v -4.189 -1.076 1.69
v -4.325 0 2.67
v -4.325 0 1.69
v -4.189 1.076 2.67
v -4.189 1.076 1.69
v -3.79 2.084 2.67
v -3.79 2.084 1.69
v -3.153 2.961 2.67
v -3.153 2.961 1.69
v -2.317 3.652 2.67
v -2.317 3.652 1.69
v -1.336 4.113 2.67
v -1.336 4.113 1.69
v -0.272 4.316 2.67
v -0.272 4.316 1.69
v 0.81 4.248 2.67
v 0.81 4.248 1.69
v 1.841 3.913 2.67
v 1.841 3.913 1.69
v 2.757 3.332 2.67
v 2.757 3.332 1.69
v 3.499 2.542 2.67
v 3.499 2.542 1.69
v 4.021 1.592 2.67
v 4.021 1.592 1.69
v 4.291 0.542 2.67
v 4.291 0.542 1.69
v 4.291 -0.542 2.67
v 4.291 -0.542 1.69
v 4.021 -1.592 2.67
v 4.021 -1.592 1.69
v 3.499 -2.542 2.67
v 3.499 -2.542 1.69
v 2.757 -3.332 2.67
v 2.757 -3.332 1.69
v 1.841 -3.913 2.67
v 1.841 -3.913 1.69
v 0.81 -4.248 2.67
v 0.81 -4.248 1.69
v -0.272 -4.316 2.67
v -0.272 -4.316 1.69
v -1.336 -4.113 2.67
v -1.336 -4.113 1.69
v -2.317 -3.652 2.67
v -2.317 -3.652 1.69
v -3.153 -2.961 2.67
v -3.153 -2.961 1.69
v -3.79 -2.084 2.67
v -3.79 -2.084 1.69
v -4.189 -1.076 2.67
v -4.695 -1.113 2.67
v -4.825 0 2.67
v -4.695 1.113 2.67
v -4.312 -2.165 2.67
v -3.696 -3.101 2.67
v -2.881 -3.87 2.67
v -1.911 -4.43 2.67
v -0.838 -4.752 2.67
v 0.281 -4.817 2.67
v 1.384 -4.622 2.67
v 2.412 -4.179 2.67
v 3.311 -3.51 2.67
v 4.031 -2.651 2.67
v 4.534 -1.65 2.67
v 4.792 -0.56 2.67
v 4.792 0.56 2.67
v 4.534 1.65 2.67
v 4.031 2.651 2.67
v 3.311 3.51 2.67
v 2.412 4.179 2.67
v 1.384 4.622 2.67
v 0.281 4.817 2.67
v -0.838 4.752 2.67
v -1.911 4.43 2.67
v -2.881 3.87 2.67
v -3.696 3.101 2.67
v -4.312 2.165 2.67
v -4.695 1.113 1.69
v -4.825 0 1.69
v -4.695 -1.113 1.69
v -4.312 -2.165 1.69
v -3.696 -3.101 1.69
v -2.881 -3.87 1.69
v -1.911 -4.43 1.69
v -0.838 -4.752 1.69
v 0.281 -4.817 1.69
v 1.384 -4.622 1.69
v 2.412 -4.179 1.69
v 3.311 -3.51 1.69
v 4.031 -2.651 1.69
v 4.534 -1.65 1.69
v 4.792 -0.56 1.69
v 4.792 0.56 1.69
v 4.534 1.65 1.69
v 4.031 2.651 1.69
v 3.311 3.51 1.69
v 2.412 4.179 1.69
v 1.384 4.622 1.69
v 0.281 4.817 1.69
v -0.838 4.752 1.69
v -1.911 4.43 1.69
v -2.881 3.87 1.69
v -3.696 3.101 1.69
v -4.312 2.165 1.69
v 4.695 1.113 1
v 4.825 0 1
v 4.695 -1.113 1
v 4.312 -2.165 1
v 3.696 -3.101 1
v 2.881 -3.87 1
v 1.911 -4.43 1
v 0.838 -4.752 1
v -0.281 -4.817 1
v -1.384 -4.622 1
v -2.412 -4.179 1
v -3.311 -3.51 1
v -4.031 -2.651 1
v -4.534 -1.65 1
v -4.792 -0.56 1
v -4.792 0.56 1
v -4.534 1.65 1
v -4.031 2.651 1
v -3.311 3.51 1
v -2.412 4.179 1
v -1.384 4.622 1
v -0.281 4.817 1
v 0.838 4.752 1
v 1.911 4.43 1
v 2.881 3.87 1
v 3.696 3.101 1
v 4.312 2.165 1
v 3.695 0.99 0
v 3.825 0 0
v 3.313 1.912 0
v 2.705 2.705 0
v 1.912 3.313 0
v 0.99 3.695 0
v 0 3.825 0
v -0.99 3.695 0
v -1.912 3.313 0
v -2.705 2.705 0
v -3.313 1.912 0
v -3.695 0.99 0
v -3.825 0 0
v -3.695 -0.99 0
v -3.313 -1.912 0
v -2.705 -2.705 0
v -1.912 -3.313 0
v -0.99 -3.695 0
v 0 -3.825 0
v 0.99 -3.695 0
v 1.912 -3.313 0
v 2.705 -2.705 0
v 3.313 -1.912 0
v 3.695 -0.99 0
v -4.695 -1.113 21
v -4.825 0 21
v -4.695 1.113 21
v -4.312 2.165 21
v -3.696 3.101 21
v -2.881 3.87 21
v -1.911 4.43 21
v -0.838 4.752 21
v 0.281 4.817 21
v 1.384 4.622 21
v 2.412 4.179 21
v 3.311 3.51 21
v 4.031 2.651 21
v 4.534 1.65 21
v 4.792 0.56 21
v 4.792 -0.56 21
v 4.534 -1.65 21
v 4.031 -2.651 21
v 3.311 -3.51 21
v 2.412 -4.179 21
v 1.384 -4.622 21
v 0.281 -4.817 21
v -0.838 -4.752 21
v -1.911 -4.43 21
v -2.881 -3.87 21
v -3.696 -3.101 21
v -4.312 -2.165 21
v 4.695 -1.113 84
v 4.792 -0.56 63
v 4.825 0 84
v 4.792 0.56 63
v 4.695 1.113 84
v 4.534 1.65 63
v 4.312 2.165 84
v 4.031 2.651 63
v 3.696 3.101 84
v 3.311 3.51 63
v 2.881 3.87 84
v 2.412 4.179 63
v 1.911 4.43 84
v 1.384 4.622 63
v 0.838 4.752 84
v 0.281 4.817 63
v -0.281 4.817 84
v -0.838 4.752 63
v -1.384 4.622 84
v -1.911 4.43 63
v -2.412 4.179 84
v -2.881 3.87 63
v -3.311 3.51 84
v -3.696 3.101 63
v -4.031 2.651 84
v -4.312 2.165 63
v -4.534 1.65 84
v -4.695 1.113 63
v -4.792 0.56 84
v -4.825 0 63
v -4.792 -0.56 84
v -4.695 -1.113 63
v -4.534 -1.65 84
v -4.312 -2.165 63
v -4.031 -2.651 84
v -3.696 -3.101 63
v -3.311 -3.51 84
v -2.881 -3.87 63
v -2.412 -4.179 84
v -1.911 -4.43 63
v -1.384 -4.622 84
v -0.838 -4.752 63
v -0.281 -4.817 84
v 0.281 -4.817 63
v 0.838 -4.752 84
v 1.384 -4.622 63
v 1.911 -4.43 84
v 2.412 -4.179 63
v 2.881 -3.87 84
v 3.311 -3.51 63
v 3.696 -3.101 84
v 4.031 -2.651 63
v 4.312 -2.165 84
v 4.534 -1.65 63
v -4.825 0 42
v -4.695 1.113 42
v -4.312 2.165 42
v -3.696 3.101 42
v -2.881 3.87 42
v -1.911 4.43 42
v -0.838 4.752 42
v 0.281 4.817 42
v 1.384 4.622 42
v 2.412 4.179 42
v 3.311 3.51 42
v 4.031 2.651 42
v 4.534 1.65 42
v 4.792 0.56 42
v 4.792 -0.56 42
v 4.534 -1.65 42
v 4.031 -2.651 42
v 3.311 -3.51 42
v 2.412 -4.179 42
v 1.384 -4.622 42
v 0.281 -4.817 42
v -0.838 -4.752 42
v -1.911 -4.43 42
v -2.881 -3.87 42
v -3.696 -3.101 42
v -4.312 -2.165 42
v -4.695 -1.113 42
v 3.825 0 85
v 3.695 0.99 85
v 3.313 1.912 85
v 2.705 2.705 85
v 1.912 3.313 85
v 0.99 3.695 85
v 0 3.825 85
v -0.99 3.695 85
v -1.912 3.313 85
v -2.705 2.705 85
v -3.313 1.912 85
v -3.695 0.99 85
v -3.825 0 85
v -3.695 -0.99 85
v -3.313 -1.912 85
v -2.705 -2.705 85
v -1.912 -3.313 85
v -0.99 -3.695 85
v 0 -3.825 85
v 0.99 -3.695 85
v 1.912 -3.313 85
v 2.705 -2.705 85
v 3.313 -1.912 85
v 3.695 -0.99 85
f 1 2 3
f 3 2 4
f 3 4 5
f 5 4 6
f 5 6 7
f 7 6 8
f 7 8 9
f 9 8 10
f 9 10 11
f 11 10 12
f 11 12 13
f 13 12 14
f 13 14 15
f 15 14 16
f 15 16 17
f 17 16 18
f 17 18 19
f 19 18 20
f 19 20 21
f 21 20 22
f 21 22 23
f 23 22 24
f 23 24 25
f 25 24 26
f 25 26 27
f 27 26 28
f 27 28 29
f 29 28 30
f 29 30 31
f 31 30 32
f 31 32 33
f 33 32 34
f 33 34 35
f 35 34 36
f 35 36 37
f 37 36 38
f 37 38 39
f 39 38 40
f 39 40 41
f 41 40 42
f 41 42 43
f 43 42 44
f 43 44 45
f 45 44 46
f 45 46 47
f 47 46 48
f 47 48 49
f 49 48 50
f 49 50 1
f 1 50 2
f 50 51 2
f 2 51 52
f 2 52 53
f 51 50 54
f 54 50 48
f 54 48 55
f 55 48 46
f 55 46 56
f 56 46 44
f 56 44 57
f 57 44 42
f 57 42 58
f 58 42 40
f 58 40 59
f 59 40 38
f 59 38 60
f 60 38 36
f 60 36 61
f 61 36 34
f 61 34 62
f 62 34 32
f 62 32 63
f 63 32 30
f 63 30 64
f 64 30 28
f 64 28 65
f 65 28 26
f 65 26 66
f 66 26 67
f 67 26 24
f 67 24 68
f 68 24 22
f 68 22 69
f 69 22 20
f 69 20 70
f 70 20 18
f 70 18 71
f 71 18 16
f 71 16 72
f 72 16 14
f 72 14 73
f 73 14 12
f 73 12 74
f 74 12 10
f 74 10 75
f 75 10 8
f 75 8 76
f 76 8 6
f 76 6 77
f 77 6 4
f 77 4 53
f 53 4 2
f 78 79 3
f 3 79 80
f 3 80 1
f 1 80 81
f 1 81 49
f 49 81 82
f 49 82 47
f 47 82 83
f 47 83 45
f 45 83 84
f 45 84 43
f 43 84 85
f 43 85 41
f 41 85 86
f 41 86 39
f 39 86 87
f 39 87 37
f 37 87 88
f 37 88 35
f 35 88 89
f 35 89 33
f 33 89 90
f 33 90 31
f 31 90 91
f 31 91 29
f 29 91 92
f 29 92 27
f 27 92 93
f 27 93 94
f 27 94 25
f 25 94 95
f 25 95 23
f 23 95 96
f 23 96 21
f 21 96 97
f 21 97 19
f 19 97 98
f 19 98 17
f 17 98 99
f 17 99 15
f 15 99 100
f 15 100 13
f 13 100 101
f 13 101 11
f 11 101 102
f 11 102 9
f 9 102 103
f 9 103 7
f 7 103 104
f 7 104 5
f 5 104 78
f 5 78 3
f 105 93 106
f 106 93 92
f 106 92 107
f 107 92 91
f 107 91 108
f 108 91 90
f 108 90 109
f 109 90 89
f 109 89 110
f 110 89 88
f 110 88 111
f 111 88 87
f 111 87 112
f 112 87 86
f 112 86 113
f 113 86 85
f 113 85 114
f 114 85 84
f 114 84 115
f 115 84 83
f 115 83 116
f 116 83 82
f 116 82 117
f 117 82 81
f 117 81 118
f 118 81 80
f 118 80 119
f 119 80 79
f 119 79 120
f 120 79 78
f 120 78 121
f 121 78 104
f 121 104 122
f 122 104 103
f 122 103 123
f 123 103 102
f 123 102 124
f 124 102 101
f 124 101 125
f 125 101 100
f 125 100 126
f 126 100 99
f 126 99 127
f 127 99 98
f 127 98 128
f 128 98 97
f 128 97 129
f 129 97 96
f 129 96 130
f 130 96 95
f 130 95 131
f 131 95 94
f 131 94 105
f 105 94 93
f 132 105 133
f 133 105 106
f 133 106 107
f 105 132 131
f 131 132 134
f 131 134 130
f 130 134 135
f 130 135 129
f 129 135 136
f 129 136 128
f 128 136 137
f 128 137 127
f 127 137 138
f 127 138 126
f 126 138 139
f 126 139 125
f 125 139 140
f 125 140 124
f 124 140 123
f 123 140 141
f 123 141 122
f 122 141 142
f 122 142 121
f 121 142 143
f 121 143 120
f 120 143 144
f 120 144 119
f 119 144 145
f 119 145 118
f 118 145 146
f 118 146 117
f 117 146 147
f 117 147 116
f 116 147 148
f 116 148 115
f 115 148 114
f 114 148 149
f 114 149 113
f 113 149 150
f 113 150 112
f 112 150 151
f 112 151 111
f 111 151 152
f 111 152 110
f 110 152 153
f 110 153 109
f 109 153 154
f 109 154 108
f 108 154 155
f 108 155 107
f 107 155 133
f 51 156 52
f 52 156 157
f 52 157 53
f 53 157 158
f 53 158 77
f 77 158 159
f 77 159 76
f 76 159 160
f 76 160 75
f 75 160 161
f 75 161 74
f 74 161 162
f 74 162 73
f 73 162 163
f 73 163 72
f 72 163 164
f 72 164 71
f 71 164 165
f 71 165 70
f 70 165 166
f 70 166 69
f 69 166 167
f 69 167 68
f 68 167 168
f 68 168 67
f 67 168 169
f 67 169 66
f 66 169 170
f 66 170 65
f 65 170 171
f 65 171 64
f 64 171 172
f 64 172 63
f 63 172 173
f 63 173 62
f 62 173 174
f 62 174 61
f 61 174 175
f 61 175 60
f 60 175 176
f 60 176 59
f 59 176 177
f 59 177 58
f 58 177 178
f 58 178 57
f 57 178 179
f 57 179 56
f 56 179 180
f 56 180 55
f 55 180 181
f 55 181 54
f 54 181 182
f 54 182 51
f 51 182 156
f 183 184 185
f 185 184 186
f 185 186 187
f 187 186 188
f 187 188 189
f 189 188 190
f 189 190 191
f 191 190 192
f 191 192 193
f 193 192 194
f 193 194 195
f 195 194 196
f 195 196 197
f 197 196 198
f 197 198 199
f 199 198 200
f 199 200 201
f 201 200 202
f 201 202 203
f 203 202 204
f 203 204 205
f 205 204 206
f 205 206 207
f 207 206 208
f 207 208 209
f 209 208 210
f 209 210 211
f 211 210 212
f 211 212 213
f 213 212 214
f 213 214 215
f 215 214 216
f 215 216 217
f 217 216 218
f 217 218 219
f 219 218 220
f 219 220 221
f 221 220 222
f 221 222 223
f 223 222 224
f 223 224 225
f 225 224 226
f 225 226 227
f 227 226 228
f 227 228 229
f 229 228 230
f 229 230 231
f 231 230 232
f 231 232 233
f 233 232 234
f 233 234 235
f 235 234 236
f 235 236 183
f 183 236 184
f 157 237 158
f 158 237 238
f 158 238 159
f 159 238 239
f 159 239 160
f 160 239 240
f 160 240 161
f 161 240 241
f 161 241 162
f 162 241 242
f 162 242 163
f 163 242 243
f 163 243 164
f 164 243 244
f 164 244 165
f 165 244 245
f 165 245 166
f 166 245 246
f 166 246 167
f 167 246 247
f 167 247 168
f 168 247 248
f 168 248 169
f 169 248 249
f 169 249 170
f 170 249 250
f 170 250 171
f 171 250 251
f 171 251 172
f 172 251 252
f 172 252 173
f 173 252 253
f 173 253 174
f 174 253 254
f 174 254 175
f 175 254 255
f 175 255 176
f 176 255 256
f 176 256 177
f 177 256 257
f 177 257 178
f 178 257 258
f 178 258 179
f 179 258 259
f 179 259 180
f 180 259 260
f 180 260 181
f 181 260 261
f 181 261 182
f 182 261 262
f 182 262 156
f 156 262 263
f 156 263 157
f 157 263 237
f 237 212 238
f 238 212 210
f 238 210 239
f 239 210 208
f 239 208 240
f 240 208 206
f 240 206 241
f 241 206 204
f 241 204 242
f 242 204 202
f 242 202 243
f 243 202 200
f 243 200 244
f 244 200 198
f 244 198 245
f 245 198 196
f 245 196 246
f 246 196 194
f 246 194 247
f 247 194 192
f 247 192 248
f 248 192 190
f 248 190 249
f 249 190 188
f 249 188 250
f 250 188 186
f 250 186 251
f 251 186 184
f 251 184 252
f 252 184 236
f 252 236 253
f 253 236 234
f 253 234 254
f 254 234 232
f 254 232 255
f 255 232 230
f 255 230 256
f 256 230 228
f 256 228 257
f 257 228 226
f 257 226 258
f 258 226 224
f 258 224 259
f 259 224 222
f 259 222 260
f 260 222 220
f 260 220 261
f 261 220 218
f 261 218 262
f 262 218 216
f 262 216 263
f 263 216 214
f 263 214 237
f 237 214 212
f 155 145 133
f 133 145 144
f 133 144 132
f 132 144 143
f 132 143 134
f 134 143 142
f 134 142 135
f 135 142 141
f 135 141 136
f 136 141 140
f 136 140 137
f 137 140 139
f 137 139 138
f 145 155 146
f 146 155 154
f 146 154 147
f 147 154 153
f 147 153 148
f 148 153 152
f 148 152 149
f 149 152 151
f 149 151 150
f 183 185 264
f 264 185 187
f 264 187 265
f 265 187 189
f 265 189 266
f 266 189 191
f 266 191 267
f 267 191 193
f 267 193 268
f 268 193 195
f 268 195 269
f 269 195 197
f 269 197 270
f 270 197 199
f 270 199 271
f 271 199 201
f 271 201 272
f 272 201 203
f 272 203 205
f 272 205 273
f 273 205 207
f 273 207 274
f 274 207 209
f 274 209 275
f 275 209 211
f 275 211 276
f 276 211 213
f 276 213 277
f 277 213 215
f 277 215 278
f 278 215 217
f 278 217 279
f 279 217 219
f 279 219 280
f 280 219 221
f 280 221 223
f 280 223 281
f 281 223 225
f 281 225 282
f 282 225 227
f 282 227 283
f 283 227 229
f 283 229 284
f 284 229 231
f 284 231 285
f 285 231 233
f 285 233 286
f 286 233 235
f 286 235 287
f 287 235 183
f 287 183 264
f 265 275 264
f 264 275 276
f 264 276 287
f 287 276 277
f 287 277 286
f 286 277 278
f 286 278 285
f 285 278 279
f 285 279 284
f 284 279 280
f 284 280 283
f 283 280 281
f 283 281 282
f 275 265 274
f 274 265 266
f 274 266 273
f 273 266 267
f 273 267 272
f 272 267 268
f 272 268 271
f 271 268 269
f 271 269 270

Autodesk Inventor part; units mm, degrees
ref_plane "YZ Plane" through (0, 0, 0) normal (1, 0, 0) x (0, 1, 0)
ref_plane "XZ Plane" through (0, 0, 0) normal (0, 1, 0) x (-1, 0, 0)
ref_plane "XY Plane" through (0, 0, 0) normal (0, 0, 1) x (1, 0, 0)
sketch "Sketch1" plane through (0, 0, 0) normal (0, 0, 1) x (1, 0, 0)
  circle A0 centre (0, 0) radius 4.825
  dimension "d0" = 9.65
extrude "Extrusion1" add sketch "Sketch1" along normal blind 85
chamfer "Chamfer1" distance 1 angle 45 2 edges at (-4.825, 0, 85) (-4.825, 0, 0)
sketch "Sketch2" plane through (0, 0, 0) normal (0, 1, 0) x (-1, 0, 0)
  line L0 (4.825, 1) -> (4.825, 84) projected
  line L1 (4.825, 1.69) -> (4.325, 1.69)
  line L2 (4.325, 1.69) -> (4.325, 2.67)
  line L3 (4.325, 2.67) -> (4.825, 2.67)
  line L4 (4.825, 2.67) -> (4.825, 1.69)
  line L5 (0, -17) -> (0, 102) projected
  point P0 (0, 0)
  dimension "d6" = 0.5
  dimension "d7" = 0.98
  dimension "d8" = 0.69
revolve "Revolution1" cut sketch "Sketch2" angle 360 about axis through (0, 0, -10) along (0, 0, 1)
properties part number "Shaft"
